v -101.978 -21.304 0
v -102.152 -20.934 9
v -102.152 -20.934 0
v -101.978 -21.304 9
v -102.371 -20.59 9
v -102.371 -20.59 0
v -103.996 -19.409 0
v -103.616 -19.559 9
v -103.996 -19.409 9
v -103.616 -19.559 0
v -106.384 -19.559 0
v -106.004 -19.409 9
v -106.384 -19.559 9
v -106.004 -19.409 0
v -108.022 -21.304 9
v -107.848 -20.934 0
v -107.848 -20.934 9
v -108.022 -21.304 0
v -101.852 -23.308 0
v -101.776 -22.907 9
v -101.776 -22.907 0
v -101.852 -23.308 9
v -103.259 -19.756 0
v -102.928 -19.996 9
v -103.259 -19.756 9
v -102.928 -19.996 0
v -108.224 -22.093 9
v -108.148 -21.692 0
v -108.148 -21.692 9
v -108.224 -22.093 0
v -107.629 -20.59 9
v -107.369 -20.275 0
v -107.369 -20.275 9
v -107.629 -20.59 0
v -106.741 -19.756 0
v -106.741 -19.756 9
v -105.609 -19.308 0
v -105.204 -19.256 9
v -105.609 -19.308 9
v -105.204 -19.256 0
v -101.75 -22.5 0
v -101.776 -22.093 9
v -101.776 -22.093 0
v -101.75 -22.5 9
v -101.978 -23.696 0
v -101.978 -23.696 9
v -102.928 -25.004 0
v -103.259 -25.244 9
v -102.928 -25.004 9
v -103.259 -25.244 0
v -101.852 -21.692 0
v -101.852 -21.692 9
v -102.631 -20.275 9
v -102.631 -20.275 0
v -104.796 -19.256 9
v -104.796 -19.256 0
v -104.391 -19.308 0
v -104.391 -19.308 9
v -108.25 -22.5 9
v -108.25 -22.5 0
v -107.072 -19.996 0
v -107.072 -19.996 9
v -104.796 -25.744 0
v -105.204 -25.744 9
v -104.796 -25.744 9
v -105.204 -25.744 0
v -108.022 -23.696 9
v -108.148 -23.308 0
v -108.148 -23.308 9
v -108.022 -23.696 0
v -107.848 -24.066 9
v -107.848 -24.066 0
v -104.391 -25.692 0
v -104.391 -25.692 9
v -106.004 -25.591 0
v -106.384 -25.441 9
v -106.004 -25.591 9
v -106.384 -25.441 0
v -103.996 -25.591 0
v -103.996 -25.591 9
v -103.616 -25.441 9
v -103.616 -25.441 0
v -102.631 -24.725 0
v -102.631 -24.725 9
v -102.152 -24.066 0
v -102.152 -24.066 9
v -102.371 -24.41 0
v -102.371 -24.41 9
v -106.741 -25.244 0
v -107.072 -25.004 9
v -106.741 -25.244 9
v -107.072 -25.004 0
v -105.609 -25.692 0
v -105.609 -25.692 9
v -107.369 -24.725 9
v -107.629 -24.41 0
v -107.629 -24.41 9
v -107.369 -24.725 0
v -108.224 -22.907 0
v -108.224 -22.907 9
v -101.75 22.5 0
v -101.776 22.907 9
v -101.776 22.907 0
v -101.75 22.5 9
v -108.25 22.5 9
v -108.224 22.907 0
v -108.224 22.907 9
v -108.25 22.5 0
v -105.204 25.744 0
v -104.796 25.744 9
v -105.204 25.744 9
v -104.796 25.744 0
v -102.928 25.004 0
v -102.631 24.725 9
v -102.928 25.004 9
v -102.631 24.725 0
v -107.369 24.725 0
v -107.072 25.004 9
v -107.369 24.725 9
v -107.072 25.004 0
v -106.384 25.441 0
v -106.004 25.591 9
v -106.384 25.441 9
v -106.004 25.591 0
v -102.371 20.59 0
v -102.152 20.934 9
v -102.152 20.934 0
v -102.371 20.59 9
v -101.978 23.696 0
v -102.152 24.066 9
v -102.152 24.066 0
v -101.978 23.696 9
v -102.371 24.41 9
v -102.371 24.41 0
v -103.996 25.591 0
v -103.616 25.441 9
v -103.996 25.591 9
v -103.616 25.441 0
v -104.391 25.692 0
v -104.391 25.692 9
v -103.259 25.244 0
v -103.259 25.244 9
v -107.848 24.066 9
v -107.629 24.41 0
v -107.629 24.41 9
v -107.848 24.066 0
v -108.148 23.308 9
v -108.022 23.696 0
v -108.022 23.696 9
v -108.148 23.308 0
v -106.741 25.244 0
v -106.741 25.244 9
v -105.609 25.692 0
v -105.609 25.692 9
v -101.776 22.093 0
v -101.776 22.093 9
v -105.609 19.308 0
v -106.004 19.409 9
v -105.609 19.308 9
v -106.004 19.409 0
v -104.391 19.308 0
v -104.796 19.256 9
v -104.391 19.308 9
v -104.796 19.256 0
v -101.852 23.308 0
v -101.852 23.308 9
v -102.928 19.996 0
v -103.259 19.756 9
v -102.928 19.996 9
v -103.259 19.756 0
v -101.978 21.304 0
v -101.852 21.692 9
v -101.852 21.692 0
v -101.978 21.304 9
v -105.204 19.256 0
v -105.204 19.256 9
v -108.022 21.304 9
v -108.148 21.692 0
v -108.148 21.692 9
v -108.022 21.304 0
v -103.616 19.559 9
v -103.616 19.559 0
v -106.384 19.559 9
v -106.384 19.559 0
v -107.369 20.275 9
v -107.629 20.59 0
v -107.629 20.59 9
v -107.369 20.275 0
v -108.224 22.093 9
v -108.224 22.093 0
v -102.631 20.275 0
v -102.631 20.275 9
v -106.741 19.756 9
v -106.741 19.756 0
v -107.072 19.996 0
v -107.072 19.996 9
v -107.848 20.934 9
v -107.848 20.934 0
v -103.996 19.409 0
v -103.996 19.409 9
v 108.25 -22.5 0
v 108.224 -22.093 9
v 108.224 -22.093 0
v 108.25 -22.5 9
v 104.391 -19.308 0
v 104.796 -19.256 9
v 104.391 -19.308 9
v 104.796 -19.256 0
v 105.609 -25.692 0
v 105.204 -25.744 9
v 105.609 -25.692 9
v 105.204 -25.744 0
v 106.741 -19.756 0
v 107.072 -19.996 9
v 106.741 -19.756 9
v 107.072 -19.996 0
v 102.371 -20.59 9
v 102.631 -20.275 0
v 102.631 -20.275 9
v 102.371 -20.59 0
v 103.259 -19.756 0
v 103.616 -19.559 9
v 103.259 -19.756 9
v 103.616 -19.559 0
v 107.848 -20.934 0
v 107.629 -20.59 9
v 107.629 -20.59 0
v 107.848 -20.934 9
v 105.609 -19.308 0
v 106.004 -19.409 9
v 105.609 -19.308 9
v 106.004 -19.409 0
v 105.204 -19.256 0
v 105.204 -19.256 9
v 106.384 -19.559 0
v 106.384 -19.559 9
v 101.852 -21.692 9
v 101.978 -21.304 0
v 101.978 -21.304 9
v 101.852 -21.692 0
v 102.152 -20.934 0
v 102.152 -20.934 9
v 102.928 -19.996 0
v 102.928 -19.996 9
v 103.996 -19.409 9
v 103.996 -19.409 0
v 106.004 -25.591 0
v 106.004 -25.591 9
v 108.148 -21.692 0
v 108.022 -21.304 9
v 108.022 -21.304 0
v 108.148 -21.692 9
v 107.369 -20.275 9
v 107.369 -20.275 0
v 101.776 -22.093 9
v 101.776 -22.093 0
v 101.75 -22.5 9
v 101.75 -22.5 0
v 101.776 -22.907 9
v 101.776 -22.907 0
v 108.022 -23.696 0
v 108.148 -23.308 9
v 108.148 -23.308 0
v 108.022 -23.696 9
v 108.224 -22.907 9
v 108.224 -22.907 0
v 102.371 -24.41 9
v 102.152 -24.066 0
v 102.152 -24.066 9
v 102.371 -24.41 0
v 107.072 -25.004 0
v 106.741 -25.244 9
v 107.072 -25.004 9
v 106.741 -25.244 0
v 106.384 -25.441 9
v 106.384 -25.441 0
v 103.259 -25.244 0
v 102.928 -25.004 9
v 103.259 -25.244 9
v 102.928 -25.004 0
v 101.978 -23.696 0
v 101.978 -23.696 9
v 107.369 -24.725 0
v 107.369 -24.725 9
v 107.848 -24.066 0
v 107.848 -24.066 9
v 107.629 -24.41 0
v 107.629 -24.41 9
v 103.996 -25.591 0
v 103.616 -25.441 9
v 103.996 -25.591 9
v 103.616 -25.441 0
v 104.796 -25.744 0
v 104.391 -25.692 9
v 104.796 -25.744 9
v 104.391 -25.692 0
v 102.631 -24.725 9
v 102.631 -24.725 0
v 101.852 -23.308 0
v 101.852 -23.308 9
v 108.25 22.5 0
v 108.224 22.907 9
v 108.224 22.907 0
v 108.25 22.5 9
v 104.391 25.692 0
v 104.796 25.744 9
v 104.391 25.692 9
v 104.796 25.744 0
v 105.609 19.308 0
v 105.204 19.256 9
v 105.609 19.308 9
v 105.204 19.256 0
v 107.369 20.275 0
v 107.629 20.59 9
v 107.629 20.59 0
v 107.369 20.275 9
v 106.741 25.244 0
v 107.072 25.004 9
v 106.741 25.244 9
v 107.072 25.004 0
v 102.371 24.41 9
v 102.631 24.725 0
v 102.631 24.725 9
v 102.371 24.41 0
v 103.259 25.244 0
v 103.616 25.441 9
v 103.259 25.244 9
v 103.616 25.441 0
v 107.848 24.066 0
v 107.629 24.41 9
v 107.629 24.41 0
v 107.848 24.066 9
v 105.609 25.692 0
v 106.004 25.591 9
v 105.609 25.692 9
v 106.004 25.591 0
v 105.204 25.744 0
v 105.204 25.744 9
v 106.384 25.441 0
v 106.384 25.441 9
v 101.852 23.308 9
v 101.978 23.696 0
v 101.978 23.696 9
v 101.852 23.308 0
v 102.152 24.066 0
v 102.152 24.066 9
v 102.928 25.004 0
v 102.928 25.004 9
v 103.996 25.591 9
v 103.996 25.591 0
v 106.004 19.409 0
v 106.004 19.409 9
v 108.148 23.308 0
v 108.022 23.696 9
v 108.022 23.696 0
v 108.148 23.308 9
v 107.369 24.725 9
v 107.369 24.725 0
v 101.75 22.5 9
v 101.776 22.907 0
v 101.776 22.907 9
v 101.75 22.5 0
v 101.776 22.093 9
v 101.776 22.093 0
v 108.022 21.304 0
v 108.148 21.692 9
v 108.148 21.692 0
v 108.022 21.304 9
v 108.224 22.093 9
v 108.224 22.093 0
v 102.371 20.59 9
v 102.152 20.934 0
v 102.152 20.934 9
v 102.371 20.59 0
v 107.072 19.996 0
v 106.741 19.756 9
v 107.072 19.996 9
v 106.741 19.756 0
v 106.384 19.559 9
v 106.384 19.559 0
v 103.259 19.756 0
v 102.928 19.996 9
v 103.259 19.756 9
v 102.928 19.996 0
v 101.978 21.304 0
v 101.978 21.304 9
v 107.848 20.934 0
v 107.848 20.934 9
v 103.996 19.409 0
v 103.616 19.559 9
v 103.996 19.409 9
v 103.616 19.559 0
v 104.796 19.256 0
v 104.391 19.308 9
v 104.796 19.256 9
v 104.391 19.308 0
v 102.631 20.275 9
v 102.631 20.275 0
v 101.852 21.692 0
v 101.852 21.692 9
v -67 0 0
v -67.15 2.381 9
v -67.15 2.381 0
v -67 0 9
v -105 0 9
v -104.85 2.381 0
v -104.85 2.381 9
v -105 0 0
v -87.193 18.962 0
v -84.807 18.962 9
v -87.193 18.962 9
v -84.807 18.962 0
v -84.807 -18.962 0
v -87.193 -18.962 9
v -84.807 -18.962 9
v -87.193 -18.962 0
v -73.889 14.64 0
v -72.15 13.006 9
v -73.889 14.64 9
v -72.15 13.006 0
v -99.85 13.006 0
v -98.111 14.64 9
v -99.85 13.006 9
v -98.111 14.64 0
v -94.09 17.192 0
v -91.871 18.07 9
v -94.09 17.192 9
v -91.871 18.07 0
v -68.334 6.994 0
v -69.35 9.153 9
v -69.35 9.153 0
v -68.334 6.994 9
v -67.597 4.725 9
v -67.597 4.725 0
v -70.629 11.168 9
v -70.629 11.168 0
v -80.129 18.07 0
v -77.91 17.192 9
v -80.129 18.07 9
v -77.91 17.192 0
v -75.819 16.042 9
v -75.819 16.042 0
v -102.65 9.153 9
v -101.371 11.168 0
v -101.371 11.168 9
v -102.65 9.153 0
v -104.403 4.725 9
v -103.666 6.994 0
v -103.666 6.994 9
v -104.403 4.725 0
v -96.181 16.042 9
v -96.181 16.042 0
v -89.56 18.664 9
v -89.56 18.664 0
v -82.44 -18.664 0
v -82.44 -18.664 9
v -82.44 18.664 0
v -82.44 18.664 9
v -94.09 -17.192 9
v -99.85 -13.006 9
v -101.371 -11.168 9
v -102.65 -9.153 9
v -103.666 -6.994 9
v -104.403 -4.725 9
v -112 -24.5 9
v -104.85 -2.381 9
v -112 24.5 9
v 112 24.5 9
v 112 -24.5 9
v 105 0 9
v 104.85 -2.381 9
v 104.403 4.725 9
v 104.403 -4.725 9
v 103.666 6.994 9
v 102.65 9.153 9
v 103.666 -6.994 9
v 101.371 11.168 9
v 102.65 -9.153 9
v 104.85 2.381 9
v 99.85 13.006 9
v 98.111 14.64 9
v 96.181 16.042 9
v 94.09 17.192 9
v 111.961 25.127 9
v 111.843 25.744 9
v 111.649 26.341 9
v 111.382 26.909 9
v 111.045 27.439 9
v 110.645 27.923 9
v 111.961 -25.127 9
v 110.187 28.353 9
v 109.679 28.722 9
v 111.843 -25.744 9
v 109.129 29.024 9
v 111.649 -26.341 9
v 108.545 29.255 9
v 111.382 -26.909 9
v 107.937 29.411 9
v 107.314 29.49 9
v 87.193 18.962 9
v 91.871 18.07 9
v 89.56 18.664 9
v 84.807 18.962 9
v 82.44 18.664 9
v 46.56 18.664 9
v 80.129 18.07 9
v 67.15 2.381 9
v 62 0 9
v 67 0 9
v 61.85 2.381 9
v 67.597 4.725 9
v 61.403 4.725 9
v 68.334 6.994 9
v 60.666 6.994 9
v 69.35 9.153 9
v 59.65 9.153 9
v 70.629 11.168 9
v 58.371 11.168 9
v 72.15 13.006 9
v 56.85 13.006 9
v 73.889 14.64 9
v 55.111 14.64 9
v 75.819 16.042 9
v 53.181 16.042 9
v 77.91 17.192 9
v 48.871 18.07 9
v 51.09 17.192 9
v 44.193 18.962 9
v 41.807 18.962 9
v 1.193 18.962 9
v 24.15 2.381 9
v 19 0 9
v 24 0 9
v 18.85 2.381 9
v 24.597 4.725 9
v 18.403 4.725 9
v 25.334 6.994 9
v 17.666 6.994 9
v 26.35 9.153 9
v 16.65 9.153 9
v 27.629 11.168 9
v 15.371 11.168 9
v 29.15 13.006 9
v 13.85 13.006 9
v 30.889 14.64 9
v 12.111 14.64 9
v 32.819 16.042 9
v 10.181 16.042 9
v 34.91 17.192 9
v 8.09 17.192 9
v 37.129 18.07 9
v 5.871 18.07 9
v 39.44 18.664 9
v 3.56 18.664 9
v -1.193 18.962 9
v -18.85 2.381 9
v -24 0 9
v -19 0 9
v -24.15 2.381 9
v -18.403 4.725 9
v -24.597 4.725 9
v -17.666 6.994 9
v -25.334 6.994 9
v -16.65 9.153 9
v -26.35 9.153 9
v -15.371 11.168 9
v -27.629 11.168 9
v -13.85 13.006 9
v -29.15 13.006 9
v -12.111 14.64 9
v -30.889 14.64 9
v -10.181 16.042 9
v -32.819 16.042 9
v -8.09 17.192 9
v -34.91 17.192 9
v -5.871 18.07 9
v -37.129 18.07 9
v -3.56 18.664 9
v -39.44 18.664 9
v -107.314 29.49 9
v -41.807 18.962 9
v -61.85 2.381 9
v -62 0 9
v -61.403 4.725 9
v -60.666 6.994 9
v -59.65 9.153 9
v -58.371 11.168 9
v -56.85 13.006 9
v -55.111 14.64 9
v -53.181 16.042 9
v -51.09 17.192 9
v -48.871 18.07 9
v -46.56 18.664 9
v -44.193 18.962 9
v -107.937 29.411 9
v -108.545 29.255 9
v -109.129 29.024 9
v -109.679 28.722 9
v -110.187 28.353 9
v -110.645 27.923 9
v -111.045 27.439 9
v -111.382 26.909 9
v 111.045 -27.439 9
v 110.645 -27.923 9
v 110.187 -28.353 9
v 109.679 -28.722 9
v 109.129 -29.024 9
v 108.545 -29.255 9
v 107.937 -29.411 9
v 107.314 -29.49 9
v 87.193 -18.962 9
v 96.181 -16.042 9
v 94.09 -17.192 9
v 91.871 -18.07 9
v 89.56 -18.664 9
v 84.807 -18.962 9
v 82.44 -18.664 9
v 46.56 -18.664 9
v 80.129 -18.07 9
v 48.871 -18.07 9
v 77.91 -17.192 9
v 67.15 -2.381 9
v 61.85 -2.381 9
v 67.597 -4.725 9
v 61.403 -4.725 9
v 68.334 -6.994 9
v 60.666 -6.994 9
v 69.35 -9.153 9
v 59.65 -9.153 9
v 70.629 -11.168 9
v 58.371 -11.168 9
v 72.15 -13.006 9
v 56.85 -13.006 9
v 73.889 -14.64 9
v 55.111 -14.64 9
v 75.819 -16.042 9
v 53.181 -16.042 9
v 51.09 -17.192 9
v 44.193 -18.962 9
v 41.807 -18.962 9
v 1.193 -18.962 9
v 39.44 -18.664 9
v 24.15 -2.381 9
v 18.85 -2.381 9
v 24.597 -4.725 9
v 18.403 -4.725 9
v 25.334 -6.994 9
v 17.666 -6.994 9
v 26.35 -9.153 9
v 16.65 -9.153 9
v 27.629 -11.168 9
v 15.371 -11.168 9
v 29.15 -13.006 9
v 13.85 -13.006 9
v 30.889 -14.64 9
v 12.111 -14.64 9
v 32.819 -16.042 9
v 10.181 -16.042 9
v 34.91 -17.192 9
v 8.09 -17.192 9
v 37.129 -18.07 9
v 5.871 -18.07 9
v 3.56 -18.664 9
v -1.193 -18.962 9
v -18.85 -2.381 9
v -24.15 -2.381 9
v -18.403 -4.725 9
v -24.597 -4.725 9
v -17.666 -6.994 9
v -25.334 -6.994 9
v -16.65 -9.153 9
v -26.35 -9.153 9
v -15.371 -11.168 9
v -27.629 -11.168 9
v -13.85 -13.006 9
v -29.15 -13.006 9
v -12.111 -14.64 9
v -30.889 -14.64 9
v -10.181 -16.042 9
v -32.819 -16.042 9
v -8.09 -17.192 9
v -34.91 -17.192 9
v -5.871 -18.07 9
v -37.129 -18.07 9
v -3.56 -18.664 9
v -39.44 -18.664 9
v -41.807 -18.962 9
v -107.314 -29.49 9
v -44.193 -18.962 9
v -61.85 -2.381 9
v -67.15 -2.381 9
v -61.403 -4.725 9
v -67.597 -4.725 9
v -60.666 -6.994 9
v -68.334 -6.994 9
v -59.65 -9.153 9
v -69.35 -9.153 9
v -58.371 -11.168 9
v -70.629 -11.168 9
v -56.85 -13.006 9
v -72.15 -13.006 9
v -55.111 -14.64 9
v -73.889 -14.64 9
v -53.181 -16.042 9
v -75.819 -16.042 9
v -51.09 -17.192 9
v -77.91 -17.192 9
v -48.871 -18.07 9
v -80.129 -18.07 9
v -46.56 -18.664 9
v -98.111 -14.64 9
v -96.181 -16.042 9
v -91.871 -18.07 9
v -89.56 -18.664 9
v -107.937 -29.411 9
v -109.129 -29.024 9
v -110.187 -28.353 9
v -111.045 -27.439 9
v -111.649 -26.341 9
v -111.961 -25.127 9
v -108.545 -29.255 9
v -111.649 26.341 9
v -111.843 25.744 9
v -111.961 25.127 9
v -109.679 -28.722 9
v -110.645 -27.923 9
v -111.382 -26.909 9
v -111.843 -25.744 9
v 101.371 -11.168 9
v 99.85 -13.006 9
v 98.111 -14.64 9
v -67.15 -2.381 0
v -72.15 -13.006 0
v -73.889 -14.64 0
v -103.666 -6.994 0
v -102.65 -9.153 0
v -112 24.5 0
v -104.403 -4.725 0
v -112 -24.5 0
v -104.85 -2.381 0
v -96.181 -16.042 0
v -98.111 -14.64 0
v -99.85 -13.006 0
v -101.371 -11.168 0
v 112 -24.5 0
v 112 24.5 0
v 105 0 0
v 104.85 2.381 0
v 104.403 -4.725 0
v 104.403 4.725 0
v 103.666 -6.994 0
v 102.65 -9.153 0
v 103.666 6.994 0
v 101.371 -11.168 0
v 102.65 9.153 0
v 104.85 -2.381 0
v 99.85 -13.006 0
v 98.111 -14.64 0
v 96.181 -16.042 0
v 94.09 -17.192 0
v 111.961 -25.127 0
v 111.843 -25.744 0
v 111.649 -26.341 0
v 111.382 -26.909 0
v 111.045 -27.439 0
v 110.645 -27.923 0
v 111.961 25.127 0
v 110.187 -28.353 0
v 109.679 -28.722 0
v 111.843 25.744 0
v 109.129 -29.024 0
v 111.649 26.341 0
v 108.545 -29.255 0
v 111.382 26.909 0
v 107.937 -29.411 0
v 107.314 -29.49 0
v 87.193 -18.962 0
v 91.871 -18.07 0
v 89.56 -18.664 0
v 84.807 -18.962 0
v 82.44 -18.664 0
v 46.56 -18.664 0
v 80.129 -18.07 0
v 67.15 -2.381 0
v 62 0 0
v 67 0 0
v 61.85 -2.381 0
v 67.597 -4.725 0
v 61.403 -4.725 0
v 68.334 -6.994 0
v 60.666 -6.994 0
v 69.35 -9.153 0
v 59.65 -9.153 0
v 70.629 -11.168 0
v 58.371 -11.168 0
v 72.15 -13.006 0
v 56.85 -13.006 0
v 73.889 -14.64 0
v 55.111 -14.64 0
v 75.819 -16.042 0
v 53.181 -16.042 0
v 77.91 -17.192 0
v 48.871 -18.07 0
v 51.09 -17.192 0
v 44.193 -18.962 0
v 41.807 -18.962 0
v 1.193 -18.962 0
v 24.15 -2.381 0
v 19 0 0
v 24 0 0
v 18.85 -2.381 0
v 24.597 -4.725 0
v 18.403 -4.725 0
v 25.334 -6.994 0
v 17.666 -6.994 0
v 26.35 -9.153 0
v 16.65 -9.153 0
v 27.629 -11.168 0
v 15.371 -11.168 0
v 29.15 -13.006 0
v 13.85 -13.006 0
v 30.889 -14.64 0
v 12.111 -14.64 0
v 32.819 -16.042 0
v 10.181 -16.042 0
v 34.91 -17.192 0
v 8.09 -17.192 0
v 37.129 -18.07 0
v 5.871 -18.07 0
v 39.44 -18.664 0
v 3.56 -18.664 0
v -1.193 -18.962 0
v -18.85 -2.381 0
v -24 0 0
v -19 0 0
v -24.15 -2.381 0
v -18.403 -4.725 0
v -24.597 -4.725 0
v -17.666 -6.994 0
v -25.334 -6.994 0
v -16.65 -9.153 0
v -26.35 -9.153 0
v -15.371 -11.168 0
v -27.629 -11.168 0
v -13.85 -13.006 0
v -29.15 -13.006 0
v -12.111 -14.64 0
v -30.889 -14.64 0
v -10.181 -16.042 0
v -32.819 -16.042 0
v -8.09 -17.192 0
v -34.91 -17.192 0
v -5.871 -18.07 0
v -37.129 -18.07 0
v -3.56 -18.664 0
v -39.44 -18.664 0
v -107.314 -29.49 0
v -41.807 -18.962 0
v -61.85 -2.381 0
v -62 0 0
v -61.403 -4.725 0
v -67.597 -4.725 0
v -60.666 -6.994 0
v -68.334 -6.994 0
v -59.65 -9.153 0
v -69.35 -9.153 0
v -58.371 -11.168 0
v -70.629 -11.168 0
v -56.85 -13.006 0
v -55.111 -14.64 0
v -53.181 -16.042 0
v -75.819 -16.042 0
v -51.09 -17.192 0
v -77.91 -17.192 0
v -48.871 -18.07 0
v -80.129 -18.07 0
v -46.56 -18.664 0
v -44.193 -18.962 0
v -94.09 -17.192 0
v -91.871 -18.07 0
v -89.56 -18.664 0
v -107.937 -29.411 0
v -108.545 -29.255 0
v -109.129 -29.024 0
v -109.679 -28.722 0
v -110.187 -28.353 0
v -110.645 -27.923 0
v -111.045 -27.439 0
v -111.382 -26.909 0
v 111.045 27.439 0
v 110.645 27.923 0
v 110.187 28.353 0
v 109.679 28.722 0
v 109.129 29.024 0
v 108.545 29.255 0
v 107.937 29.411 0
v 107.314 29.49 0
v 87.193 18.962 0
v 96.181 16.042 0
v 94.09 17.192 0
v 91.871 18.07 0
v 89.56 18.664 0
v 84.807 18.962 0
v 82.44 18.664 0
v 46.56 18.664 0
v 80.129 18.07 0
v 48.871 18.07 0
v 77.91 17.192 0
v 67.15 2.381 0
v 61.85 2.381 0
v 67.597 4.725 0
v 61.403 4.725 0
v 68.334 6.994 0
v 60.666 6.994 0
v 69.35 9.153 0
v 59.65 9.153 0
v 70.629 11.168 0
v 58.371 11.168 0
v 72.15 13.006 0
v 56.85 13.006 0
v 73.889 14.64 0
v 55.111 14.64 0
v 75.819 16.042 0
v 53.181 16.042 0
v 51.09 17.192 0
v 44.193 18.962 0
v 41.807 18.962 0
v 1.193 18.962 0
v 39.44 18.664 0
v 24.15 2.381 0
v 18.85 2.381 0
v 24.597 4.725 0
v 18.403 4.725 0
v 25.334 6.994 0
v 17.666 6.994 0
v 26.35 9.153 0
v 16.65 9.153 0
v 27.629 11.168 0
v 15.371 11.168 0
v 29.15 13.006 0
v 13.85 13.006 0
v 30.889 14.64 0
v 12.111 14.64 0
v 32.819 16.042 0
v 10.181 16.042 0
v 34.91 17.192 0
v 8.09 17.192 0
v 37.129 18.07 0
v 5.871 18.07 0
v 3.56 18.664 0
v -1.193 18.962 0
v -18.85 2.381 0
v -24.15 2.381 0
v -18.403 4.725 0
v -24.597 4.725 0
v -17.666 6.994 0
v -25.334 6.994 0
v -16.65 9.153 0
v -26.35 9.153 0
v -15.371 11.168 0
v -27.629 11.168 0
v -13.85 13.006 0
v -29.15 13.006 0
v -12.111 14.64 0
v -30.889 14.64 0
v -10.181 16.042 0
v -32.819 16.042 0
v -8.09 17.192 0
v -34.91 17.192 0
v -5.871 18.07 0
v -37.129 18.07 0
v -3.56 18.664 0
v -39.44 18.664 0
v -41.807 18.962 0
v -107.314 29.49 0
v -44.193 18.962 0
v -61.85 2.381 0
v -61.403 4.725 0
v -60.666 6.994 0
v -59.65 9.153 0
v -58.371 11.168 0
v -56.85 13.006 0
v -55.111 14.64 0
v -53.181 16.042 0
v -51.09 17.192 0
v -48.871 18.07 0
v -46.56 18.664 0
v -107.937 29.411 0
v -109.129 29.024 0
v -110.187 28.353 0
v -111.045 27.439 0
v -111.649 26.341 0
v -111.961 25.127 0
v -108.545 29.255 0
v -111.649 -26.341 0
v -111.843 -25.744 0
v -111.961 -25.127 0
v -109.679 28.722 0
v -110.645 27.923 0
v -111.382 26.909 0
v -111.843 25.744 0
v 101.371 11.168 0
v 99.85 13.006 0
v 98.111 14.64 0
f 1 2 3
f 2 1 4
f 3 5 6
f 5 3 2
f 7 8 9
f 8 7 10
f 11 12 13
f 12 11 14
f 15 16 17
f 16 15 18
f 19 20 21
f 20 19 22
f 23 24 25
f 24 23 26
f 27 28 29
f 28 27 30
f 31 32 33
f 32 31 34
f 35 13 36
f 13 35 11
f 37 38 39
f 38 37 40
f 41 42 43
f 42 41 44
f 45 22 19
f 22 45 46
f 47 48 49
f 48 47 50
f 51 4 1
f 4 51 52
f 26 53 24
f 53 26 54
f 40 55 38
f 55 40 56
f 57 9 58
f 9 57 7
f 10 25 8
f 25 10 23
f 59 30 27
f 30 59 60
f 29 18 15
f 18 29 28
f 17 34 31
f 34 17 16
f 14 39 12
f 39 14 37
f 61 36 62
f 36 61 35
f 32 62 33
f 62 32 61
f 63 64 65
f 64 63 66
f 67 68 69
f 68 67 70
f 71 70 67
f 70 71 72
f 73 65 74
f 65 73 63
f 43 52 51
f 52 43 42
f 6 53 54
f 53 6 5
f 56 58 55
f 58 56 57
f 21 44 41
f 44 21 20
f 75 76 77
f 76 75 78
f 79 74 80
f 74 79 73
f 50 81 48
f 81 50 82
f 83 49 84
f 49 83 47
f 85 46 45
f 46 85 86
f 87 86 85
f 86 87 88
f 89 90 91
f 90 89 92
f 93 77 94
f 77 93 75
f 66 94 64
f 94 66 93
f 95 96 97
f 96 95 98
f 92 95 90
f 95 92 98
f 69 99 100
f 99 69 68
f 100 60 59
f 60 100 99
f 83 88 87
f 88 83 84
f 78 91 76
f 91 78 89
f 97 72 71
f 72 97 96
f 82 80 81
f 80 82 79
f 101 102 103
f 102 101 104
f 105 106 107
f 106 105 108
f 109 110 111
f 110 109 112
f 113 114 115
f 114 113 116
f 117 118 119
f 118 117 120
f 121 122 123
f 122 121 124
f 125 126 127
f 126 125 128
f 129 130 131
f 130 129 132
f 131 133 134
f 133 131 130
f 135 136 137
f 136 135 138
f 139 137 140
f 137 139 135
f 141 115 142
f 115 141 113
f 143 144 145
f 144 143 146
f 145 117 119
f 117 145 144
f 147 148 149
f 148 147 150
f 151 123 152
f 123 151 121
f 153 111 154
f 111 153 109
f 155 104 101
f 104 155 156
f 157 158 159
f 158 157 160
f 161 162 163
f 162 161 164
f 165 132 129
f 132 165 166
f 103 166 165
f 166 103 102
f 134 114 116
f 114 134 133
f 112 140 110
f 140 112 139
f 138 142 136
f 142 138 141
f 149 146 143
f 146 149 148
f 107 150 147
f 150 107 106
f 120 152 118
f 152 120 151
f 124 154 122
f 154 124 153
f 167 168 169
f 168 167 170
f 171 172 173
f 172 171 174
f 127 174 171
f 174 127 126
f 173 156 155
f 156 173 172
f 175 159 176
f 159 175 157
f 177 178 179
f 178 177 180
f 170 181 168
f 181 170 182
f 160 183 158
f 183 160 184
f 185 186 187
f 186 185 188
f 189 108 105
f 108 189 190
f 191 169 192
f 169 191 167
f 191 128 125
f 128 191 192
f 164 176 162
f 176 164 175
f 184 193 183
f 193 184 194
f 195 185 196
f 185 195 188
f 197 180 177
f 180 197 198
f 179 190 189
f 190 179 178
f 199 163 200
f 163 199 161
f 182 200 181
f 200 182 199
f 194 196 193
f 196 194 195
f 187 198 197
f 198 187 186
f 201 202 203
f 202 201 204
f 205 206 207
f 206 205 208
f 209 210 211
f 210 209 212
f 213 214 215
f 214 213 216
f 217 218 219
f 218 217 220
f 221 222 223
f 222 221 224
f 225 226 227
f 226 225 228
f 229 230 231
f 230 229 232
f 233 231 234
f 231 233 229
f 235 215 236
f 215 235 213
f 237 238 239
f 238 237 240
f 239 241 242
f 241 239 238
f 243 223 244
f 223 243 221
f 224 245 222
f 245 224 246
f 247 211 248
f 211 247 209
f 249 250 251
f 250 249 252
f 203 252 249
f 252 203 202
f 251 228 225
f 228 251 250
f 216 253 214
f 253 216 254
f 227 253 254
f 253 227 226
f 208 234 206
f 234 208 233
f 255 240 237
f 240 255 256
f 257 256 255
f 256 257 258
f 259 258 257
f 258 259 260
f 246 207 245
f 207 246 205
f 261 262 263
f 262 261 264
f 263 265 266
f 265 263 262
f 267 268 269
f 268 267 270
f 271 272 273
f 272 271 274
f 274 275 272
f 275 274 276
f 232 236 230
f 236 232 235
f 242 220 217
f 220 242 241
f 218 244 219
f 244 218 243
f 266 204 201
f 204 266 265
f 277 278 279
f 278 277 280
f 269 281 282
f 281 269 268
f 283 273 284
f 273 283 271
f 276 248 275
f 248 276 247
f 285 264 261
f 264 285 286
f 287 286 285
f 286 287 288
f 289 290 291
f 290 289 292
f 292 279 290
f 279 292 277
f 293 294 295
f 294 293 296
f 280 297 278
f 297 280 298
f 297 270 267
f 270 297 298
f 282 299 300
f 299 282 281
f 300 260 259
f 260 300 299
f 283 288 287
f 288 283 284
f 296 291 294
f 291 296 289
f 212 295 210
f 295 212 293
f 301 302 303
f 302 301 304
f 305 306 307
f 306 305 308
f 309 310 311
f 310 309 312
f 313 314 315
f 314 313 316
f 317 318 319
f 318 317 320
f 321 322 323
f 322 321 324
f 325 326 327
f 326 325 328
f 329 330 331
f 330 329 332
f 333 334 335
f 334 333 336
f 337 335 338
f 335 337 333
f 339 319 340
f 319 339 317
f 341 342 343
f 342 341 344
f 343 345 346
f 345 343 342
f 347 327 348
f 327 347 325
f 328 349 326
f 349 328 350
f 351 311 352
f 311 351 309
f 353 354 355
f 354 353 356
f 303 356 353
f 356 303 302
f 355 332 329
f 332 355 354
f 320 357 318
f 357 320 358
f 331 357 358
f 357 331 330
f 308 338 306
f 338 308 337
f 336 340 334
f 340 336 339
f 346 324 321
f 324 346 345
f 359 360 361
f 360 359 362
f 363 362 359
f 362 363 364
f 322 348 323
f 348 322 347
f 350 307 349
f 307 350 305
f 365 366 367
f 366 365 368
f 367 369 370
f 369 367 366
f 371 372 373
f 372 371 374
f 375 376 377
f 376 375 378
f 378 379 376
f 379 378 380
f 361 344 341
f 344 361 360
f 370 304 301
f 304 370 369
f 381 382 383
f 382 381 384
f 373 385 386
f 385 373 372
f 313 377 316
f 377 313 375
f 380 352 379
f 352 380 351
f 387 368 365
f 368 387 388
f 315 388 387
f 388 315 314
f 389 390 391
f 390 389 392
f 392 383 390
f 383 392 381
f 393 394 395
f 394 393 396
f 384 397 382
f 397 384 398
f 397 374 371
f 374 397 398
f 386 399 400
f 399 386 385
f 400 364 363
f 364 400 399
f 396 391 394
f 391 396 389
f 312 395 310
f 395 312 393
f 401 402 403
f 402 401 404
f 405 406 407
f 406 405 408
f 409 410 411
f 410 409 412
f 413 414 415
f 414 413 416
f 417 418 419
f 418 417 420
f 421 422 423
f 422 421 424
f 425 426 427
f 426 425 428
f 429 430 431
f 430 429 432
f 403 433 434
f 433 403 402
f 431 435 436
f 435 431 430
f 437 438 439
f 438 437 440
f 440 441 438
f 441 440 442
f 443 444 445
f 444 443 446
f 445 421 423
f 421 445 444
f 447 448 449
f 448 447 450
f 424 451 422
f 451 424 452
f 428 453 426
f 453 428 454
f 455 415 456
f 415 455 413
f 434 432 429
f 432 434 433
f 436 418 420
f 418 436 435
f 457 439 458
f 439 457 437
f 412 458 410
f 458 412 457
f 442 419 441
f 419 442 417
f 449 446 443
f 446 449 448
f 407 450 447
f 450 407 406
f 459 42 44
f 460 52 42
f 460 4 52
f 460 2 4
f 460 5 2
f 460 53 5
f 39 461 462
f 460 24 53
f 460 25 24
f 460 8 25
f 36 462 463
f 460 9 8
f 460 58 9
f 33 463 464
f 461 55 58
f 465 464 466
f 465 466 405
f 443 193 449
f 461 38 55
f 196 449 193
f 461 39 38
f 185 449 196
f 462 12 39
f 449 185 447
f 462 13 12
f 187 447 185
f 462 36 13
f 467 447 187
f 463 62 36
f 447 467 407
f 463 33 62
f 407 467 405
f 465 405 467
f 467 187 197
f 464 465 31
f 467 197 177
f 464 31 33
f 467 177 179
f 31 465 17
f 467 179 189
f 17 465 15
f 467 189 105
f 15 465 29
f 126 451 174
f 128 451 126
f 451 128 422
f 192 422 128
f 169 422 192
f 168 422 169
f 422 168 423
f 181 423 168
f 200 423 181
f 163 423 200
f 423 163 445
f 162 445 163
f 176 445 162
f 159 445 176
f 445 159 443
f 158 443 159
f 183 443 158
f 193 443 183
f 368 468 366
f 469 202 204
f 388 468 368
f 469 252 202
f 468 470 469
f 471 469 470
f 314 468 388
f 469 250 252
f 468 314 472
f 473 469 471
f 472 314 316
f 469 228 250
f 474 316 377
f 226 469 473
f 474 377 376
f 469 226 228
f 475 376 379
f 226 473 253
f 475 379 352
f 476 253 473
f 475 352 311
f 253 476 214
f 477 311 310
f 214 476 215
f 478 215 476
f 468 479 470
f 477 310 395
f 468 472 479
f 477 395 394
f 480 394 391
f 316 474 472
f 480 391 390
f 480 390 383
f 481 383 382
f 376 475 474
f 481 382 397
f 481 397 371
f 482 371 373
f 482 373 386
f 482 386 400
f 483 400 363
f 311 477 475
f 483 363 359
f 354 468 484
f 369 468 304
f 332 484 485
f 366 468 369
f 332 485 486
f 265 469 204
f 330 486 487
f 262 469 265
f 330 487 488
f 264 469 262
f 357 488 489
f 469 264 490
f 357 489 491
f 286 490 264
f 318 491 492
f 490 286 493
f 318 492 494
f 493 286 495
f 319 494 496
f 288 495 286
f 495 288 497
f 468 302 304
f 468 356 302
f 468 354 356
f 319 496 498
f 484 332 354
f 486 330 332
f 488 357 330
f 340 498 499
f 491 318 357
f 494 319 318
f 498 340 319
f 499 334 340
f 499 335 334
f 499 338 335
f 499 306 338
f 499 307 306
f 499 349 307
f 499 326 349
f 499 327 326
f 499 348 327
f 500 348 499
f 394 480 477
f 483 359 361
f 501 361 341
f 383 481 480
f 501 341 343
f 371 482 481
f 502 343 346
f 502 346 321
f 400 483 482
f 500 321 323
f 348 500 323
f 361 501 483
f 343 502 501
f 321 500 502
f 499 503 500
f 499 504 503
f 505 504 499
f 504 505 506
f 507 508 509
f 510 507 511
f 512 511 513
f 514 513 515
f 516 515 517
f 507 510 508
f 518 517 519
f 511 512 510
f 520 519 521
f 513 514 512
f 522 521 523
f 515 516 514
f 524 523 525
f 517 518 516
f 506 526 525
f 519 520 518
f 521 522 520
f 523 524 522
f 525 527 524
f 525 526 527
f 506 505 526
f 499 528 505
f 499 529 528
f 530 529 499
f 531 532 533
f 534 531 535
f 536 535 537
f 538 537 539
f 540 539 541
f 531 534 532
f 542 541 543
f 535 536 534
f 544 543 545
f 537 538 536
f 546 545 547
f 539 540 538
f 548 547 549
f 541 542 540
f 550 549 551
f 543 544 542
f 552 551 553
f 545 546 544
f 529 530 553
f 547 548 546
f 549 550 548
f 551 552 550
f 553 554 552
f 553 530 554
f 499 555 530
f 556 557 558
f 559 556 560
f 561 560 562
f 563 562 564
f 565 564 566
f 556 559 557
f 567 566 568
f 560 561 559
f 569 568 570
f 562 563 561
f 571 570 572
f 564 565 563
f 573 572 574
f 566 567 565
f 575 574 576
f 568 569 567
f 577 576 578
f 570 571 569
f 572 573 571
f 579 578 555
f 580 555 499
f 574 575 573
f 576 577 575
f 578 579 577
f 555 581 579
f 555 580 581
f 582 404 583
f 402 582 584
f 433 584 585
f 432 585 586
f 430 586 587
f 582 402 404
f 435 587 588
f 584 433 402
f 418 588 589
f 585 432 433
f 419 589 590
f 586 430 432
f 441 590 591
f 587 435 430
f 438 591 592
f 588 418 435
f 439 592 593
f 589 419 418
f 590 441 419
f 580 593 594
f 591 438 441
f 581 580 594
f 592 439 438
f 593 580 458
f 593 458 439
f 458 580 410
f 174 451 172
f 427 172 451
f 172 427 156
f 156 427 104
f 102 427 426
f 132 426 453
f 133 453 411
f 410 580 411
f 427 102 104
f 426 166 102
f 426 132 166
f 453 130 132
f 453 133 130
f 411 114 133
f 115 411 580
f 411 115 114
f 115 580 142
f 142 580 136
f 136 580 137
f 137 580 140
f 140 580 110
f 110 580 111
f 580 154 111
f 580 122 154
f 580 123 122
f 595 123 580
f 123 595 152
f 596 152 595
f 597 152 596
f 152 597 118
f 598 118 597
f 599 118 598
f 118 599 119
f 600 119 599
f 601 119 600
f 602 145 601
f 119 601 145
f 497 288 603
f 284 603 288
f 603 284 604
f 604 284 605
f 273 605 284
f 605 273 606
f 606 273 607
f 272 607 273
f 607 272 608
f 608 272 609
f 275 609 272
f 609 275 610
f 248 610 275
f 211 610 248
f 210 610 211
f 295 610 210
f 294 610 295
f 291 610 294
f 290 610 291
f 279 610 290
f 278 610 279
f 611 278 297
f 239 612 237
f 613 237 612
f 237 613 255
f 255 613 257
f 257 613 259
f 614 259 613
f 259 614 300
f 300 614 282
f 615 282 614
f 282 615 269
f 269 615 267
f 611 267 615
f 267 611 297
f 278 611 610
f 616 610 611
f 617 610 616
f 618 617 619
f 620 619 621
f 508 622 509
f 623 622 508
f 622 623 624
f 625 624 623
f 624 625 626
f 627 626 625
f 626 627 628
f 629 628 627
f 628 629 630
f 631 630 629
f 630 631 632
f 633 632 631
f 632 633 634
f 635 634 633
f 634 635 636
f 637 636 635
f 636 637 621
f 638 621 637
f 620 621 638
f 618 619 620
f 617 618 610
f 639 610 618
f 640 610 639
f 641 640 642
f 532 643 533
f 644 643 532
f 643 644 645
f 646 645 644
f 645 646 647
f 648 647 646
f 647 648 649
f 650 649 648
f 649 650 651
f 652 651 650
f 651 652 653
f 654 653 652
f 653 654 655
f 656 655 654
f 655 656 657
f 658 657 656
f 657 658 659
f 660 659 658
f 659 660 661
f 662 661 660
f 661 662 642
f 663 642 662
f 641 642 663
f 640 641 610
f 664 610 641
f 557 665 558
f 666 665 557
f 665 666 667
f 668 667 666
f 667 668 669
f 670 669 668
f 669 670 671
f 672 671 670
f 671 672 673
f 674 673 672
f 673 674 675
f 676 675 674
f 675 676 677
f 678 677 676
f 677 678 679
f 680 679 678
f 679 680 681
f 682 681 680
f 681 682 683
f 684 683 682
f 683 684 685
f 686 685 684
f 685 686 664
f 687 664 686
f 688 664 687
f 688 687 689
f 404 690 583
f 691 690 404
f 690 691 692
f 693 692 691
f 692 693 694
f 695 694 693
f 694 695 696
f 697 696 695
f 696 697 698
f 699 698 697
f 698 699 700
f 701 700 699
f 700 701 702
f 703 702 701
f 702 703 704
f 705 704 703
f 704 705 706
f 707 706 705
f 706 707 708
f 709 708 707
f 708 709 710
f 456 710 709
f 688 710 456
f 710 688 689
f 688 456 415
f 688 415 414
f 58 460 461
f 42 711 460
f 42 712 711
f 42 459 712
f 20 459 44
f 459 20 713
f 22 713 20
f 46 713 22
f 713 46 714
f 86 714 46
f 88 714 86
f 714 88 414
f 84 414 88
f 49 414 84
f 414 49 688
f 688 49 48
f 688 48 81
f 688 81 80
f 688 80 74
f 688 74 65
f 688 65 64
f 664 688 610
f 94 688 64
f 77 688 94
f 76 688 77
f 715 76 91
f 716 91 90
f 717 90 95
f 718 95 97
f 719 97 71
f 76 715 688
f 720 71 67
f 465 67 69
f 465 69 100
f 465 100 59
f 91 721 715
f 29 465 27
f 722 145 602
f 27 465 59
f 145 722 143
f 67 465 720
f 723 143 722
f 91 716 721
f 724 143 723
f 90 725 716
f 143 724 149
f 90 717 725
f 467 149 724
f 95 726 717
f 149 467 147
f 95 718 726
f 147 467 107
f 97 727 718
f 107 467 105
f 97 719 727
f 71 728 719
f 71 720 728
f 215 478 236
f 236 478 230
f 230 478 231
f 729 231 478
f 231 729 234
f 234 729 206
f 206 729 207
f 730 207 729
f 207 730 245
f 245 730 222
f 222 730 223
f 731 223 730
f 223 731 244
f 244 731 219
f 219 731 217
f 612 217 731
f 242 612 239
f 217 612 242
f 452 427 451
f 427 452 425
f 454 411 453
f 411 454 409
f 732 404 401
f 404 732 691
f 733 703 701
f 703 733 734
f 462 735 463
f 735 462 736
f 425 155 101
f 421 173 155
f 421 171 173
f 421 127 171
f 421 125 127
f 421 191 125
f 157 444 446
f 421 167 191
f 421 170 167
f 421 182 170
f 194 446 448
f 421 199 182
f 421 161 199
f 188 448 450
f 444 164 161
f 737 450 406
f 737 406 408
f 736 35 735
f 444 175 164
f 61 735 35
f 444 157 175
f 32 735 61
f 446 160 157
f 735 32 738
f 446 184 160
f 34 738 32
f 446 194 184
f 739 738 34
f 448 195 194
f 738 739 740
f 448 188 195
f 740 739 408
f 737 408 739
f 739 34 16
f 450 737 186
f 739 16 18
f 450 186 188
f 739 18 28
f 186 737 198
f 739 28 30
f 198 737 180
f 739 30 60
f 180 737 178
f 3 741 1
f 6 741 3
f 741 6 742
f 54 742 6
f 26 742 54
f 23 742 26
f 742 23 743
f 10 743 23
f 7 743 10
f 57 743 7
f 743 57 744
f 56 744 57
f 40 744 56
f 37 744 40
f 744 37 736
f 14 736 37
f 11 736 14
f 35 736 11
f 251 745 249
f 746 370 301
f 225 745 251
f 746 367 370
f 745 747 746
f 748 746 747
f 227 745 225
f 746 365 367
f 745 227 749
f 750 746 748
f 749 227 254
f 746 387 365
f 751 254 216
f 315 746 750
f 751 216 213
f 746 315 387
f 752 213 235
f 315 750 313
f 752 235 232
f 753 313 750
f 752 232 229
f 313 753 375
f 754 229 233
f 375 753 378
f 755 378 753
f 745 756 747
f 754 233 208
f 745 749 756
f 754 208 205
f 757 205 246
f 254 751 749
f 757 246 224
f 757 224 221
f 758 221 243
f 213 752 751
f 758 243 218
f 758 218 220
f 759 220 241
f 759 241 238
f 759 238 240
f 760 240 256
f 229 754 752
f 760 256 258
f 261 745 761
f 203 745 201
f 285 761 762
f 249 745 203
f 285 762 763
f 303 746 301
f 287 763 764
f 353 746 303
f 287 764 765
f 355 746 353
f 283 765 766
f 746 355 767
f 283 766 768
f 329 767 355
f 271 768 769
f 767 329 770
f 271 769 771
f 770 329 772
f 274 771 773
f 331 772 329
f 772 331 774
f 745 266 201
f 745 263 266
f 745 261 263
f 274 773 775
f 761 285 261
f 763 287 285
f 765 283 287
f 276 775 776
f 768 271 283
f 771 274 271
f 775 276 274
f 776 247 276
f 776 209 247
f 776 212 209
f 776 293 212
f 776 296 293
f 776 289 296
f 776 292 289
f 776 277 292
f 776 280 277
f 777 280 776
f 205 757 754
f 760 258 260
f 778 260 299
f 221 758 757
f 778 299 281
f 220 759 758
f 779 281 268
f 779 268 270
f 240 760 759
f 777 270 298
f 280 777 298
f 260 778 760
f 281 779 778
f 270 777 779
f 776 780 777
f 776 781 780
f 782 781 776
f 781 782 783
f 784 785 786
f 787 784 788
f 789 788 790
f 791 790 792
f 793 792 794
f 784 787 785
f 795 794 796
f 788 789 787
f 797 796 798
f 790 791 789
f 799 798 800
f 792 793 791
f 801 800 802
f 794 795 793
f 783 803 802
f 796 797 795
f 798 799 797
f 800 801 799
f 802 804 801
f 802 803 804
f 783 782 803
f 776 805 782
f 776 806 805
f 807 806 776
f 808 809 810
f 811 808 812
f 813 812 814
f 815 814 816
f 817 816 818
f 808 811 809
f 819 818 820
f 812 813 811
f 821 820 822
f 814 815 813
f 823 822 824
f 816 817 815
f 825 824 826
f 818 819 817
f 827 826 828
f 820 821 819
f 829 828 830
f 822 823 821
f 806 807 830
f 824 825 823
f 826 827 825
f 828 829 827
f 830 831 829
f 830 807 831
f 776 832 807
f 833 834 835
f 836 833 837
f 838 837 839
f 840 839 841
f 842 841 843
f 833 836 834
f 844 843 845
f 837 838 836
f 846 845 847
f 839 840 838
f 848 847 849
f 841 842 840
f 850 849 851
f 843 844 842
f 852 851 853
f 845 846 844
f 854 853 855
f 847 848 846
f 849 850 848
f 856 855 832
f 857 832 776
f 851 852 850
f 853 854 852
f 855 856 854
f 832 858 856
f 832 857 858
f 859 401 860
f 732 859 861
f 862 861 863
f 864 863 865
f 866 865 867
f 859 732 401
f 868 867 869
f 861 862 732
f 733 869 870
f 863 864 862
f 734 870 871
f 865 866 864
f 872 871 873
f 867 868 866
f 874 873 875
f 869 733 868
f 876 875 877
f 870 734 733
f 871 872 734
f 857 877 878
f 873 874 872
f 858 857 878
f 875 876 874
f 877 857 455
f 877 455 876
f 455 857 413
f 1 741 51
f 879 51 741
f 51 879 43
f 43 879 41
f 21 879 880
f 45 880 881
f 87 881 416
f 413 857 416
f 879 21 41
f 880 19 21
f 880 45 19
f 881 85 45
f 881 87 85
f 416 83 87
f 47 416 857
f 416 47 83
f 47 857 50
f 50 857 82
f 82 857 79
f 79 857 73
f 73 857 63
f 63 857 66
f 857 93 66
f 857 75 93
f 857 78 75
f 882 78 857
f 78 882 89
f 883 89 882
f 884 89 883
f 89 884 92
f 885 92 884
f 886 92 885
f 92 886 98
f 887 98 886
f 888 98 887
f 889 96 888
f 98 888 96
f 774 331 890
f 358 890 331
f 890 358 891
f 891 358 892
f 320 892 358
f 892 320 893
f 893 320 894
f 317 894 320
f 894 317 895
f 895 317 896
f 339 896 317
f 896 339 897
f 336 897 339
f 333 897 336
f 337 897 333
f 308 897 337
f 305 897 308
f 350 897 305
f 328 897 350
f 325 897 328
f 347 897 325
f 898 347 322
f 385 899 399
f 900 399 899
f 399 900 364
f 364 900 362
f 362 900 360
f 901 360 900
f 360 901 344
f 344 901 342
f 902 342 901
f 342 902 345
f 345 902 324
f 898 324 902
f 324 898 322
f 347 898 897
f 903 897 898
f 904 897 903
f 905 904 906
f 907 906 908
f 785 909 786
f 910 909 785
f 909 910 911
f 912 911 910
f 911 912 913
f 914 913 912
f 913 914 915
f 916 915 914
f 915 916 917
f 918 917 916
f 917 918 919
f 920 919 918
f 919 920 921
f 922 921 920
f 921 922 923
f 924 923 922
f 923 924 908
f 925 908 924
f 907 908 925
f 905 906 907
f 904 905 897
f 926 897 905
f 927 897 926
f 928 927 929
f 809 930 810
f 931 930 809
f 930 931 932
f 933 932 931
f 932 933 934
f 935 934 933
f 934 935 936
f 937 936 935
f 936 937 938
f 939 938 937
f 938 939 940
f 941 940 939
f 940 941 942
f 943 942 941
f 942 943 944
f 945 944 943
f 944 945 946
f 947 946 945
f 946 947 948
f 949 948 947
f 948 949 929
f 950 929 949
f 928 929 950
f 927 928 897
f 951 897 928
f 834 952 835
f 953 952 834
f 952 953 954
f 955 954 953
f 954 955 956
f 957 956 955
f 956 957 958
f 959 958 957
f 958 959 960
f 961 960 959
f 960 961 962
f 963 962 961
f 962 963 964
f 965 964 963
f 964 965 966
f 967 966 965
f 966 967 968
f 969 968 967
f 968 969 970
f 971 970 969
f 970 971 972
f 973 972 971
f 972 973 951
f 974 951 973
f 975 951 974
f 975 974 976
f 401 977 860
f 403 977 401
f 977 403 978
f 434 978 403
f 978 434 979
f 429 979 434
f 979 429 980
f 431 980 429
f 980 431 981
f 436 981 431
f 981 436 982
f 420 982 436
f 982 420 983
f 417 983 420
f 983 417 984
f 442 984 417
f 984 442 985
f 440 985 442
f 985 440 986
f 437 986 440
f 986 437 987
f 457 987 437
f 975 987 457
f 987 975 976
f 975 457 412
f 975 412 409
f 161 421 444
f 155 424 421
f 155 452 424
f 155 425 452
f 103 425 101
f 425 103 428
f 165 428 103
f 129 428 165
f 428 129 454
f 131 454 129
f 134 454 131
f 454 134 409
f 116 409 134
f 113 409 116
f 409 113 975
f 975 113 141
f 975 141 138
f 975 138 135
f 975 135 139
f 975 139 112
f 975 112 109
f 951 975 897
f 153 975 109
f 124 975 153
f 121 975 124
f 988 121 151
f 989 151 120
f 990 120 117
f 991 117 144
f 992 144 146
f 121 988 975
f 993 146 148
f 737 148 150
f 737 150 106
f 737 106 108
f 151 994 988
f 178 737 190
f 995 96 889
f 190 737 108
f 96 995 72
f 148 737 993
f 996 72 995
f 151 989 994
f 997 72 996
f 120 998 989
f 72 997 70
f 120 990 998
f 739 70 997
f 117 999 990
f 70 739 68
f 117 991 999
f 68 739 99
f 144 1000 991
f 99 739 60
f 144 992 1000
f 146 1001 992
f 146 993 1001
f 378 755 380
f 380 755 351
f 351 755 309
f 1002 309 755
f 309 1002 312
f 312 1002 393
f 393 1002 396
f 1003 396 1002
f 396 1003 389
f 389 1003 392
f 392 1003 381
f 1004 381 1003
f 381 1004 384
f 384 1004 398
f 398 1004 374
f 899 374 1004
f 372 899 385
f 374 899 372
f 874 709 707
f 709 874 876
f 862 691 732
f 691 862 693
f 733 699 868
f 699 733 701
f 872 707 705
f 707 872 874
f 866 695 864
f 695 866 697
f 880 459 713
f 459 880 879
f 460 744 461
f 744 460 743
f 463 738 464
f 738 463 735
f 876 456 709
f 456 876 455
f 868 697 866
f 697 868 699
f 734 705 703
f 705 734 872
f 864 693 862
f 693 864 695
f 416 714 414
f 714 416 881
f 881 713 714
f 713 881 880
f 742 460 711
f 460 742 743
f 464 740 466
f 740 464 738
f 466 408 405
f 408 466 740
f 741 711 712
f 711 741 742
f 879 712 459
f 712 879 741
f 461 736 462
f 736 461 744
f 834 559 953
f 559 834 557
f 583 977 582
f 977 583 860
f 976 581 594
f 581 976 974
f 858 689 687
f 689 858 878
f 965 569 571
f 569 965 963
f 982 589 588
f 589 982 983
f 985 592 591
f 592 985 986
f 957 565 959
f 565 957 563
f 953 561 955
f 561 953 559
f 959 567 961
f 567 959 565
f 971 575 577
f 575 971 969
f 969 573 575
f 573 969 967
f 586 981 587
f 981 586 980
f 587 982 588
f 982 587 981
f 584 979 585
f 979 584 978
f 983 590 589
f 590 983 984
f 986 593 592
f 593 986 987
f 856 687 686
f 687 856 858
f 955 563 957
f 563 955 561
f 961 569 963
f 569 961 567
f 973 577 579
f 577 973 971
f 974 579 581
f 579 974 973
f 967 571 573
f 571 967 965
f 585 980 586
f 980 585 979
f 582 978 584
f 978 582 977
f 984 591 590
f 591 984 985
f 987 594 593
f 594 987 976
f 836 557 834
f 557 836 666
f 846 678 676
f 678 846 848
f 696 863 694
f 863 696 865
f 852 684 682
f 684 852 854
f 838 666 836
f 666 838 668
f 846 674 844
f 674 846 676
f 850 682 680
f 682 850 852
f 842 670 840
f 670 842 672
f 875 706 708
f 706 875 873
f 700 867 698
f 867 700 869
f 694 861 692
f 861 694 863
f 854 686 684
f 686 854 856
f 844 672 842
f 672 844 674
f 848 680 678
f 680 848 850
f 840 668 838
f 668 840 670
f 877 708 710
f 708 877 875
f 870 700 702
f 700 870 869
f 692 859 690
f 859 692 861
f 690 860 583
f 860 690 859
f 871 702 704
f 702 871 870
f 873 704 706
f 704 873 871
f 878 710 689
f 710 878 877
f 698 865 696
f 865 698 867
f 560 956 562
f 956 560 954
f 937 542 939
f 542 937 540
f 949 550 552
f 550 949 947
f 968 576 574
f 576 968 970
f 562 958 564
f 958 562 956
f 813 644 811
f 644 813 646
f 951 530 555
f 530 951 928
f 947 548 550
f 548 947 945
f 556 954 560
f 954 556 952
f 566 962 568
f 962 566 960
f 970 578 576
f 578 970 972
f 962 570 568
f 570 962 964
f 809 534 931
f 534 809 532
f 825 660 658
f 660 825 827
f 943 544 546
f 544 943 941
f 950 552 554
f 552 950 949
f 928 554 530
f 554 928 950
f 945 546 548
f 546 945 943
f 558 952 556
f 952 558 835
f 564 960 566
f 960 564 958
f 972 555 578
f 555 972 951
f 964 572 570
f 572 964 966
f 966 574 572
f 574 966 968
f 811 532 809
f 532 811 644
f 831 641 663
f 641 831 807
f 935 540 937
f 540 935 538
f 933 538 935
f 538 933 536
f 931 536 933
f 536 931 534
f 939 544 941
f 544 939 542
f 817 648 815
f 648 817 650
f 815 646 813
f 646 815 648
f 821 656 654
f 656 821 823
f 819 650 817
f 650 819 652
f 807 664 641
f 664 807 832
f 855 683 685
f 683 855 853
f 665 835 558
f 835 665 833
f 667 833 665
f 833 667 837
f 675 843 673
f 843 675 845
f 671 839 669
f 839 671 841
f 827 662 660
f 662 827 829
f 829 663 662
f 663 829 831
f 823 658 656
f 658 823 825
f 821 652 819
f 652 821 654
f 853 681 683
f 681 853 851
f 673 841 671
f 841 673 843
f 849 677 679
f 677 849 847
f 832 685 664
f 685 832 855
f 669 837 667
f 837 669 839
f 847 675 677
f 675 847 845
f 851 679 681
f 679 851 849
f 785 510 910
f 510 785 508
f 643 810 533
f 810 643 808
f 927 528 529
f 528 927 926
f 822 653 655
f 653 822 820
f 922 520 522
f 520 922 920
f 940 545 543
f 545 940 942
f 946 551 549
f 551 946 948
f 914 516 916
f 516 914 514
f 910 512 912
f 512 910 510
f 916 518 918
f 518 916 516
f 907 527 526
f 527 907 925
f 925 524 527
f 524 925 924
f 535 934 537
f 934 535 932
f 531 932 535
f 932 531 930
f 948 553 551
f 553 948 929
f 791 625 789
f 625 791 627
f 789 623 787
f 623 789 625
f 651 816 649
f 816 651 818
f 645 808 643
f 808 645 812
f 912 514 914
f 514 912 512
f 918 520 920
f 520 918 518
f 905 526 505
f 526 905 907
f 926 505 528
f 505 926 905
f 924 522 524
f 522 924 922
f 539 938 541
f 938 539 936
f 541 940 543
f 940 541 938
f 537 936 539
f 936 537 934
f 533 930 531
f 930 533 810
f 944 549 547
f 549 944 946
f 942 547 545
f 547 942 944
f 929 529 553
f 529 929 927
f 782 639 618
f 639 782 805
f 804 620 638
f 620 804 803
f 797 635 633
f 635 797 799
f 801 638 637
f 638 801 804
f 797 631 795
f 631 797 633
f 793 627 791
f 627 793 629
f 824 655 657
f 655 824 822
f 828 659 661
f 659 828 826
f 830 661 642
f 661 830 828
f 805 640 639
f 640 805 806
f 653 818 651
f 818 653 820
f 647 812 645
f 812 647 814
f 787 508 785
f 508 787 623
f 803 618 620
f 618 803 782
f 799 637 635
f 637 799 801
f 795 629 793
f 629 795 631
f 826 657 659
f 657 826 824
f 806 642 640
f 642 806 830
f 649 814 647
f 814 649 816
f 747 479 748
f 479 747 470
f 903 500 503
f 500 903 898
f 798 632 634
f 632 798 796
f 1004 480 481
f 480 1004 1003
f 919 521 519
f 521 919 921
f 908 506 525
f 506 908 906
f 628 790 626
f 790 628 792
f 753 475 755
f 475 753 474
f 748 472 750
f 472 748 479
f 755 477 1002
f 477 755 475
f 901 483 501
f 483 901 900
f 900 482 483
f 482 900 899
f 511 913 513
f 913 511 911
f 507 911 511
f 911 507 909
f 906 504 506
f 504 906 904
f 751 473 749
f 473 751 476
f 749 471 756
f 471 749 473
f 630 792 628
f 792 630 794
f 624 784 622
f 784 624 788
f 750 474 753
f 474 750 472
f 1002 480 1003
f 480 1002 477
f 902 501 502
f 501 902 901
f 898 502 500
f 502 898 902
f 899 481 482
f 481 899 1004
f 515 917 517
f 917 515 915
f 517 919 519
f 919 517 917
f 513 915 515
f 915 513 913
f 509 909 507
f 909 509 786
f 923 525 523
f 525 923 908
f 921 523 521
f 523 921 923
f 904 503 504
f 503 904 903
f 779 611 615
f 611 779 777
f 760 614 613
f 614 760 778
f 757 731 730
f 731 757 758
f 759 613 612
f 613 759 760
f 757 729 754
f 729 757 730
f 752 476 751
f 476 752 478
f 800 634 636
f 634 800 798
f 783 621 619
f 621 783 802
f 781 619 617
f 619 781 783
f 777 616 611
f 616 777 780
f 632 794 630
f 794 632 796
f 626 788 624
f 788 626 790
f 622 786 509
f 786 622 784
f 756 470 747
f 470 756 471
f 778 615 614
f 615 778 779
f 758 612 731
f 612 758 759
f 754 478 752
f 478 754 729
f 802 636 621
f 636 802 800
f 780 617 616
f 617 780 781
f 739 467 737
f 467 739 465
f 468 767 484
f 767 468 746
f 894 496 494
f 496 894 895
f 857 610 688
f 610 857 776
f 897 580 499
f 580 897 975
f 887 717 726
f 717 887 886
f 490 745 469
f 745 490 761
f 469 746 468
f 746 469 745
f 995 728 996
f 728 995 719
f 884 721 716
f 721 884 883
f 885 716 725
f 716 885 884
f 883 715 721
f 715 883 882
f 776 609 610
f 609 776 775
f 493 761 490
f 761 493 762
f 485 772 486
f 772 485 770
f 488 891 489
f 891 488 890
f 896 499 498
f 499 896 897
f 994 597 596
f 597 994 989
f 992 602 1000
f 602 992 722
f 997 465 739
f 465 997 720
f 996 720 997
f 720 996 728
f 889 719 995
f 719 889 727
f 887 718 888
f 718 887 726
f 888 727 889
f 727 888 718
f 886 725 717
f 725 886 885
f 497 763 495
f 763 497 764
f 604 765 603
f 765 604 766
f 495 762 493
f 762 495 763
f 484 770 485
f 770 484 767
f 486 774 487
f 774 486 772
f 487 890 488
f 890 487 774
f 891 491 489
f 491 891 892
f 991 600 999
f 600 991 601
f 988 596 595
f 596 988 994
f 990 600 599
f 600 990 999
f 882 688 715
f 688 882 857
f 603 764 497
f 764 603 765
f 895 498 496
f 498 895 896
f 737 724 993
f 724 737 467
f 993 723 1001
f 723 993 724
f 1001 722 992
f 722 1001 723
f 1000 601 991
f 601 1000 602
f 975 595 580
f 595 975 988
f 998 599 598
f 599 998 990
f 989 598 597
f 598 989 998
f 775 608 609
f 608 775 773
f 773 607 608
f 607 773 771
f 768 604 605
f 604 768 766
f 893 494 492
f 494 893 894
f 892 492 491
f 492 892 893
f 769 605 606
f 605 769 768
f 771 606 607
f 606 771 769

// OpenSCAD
$fn = 50;


difference() {
	union() {
		hull() {
			translate(v = [-107.0000000000, 24.5000000000, 0]) {
				cylinder(h = 9, r = 5);
			}
			translate(v = [107.0000000000, 24.5000000000, 0]) {
				cylinder(h = 9, r = 5);
			}
			translate(v = [-107.0000000000, -24.5000000000, 0]) {
				cylinder(h = 9, r = 5);
			}
			translate(v = [107.0000000000, -24.5000000000, 0]) {
				cylinder(h = 9, r = 5);
			}
		}
	}
	union() {
		#translate(v = [-105.0000000000, -22.5000000000, -100.0000000000]) {
			cylinder(h = 200, r = 3.2500000000);
		}
		#translate(v = [-105.0000000000, 22.5000000000, -100.0000000000]) {
			cylinder(h = 200, r = 3.2500000000);
		}
		#translate(v = [105.0000000000, -22.5000000000, -100.0000000000]) {
			cylinder(h = 200, r = 3.2500000000);
		}
		#translate(v = [105.0000000000, 22.5000000000, -100.0000000000]) {
			cylinder(h = 200, r = 3.2500000000);
		}
		#translate(v = [-86.0000000000, 0, 0]) {
			cylinder(h = 9, r = 19.0000000000);
		}
		#translate(v = [-43.0000000000, 0, 0]) {
			cylinder(h = 9, r = 19.0000000000);
		}
		#cylinder(h = 9, r = 19.0000000000);
		#translate(v = [43.0000000000, 0, 0]) {
			cylinder(h = 9, r = 19.0000000000);
		}
		#translate(v = [86.0000000000, 0, 0]) {
			cylinder(h = 9, r = 19.0000000000);
		}
	}
}
